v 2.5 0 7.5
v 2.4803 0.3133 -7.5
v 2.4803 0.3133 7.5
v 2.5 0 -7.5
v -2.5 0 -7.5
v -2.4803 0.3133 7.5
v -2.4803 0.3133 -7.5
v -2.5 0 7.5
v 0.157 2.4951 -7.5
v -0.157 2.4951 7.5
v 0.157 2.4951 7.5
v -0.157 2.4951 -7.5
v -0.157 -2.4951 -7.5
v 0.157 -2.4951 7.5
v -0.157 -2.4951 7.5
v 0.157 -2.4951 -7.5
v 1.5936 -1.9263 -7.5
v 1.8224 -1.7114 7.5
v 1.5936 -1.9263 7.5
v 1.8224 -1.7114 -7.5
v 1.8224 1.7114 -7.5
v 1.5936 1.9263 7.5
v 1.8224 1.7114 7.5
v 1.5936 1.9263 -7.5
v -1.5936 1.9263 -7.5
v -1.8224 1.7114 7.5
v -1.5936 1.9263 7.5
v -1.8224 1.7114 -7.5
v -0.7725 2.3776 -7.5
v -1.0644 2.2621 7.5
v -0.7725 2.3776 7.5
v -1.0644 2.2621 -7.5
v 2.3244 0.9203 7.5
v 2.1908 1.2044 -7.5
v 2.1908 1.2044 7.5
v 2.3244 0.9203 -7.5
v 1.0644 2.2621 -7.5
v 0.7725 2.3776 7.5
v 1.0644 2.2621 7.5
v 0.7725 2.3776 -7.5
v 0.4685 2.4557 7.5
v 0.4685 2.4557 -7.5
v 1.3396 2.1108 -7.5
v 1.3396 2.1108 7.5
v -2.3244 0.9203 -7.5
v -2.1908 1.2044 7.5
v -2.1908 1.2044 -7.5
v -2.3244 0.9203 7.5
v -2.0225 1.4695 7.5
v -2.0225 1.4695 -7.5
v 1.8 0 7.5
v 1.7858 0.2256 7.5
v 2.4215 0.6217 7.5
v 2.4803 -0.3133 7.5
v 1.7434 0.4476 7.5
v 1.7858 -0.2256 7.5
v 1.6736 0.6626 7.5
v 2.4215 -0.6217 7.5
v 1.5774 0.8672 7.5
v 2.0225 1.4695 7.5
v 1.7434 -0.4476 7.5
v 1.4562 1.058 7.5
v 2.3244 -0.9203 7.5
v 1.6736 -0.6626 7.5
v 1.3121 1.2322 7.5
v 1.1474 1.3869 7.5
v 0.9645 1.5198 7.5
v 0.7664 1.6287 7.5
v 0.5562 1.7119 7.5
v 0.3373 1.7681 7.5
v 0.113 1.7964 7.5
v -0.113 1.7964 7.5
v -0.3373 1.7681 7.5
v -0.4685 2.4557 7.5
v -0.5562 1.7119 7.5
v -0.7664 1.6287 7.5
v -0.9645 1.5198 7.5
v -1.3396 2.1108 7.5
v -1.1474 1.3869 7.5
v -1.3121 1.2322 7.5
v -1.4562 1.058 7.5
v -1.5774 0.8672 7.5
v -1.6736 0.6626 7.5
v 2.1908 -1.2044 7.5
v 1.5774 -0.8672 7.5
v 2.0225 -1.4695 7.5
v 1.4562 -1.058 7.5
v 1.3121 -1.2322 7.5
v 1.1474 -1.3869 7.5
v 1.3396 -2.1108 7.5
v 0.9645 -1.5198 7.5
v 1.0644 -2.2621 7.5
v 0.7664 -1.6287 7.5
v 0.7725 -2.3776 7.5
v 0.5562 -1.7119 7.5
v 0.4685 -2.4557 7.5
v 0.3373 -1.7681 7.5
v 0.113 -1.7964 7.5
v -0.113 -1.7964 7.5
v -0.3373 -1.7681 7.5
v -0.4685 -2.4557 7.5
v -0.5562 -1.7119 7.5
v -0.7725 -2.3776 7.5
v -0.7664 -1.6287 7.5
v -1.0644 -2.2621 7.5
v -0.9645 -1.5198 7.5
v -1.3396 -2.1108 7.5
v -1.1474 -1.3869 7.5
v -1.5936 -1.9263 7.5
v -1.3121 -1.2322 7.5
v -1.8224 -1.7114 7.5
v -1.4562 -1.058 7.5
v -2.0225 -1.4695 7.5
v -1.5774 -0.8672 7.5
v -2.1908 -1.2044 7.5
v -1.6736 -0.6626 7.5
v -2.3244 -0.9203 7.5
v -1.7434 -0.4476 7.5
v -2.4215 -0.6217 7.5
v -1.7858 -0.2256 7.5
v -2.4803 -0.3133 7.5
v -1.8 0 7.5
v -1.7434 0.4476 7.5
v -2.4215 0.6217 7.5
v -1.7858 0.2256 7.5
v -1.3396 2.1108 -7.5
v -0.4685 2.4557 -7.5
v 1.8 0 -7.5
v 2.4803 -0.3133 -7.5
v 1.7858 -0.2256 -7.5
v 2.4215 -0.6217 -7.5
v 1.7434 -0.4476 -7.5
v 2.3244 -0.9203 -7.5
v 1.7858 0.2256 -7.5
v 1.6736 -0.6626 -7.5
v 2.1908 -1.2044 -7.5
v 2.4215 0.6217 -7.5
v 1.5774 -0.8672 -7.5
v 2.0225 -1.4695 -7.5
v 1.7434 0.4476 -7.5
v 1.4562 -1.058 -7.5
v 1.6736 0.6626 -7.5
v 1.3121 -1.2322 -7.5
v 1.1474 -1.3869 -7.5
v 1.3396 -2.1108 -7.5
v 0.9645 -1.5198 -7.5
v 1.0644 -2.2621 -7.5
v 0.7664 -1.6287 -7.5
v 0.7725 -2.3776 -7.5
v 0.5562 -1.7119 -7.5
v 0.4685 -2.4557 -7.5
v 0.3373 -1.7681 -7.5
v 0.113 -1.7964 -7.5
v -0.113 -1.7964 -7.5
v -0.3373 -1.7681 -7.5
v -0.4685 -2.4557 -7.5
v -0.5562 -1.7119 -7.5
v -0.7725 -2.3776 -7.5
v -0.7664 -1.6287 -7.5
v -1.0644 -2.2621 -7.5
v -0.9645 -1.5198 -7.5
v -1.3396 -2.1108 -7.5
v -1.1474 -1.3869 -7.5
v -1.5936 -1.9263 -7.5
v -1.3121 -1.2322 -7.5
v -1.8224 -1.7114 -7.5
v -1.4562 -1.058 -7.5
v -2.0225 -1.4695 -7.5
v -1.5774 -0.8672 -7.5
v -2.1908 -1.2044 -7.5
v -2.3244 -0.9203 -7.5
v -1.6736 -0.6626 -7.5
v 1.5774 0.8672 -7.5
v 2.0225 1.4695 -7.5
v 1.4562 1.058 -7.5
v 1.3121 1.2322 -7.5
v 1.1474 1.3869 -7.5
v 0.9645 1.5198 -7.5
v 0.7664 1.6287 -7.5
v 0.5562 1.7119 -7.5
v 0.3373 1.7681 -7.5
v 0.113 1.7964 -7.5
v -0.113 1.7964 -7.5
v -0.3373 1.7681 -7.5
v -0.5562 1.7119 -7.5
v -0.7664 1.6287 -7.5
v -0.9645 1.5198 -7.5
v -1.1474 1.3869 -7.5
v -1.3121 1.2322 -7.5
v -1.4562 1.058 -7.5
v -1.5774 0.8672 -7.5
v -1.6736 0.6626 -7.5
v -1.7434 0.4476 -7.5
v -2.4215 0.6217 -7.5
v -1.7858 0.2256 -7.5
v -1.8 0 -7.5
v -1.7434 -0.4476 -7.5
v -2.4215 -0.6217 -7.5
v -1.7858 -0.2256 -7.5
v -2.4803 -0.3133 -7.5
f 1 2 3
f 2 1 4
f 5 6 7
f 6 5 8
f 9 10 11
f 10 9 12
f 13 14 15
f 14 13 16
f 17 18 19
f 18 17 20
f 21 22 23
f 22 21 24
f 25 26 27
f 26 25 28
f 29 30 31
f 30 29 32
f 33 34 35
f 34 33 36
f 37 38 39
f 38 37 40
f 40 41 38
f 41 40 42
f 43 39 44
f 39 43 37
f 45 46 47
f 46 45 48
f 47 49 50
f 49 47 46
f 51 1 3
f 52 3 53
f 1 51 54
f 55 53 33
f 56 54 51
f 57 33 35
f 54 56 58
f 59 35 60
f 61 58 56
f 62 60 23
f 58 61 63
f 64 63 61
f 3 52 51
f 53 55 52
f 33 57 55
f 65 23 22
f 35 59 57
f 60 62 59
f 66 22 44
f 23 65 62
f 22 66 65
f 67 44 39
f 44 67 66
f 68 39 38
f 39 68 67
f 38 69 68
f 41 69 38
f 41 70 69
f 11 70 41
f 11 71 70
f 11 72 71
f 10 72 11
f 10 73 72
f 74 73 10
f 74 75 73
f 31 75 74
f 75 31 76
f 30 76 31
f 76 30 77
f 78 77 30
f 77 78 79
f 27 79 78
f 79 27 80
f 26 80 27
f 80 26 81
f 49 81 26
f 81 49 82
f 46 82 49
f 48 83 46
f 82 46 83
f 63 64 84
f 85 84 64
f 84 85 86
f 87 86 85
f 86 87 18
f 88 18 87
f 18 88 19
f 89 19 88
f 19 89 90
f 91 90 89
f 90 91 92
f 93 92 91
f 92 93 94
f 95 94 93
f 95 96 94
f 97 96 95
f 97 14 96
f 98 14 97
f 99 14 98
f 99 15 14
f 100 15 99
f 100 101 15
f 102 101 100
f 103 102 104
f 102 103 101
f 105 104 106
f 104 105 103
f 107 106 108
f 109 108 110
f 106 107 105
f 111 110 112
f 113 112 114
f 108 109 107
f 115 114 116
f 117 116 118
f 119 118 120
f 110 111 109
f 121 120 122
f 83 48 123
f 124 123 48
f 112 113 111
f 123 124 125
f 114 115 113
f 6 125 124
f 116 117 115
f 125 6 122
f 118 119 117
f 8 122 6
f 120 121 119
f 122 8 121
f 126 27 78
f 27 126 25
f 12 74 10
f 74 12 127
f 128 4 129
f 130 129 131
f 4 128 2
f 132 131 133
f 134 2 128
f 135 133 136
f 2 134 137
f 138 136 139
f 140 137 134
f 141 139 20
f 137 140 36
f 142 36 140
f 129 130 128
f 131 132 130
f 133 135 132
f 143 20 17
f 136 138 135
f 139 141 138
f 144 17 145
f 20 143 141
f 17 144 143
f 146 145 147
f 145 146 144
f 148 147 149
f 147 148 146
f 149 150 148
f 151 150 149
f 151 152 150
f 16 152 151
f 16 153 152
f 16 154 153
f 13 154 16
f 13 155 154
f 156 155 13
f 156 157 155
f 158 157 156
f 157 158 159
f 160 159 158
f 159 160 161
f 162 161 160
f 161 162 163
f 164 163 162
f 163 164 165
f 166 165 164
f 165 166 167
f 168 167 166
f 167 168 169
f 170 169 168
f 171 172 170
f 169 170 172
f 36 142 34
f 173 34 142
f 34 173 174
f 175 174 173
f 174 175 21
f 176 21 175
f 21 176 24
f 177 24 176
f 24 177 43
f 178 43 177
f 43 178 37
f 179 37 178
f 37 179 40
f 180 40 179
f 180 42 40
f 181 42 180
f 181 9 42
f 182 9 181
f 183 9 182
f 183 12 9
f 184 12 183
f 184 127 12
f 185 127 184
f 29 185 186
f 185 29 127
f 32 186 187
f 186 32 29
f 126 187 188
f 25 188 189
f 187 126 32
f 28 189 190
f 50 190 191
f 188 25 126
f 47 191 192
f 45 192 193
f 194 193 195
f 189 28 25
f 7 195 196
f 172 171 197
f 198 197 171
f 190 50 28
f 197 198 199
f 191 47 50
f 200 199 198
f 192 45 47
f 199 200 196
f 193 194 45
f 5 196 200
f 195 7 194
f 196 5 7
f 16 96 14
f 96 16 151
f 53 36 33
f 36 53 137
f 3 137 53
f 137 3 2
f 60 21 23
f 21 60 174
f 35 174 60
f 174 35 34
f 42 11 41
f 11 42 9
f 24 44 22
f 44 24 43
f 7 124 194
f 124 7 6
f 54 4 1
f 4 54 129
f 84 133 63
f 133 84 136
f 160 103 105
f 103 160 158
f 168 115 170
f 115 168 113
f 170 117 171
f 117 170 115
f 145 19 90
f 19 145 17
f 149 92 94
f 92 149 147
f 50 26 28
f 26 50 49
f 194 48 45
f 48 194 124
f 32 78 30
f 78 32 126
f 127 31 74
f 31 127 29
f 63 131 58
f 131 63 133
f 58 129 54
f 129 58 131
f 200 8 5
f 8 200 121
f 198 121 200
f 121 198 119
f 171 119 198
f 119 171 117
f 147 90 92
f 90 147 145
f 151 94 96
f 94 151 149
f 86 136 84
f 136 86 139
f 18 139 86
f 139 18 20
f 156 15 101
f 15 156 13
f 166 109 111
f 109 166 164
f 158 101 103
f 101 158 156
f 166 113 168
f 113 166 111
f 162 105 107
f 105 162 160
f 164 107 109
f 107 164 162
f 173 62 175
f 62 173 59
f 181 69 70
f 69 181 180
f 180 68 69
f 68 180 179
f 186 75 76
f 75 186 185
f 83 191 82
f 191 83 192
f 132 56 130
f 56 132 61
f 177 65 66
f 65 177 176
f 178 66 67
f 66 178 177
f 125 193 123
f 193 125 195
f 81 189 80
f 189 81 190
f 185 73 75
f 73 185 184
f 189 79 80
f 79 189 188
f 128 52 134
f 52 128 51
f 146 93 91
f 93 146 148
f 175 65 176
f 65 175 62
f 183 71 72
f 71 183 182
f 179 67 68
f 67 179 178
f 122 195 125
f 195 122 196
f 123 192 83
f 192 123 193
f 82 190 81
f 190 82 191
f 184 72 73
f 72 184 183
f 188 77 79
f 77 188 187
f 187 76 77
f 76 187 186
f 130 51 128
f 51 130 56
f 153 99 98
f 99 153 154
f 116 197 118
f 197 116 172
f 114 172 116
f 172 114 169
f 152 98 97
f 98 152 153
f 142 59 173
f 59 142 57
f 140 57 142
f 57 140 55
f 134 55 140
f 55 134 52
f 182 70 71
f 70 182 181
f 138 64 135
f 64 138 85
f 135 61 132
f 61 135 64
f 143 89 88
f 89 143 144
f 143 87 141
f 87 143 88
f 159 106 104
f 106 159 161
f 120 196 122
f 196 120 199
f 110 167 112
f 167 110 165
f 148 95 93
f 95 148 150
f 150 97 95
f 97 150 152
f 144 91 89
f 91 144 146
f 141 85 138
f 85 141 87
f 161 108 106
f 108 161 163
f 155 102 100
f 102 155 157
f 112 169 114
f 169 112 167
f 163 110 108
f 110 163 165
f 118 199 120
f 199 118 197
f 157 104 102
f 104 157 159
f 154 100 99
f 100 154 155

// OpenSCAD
$fn = 50;


difference() {
	union() {
		translate(v = [0, 0, -7.5000000000]) {
			cylinder(h = 15, r = 2.5000000000);
		}
	}
	union() {
		translate(v = [0, 0, -100.0000000000]) {
			cylinder(h = 200, r = 1.8000000000);
		}
	}
}
